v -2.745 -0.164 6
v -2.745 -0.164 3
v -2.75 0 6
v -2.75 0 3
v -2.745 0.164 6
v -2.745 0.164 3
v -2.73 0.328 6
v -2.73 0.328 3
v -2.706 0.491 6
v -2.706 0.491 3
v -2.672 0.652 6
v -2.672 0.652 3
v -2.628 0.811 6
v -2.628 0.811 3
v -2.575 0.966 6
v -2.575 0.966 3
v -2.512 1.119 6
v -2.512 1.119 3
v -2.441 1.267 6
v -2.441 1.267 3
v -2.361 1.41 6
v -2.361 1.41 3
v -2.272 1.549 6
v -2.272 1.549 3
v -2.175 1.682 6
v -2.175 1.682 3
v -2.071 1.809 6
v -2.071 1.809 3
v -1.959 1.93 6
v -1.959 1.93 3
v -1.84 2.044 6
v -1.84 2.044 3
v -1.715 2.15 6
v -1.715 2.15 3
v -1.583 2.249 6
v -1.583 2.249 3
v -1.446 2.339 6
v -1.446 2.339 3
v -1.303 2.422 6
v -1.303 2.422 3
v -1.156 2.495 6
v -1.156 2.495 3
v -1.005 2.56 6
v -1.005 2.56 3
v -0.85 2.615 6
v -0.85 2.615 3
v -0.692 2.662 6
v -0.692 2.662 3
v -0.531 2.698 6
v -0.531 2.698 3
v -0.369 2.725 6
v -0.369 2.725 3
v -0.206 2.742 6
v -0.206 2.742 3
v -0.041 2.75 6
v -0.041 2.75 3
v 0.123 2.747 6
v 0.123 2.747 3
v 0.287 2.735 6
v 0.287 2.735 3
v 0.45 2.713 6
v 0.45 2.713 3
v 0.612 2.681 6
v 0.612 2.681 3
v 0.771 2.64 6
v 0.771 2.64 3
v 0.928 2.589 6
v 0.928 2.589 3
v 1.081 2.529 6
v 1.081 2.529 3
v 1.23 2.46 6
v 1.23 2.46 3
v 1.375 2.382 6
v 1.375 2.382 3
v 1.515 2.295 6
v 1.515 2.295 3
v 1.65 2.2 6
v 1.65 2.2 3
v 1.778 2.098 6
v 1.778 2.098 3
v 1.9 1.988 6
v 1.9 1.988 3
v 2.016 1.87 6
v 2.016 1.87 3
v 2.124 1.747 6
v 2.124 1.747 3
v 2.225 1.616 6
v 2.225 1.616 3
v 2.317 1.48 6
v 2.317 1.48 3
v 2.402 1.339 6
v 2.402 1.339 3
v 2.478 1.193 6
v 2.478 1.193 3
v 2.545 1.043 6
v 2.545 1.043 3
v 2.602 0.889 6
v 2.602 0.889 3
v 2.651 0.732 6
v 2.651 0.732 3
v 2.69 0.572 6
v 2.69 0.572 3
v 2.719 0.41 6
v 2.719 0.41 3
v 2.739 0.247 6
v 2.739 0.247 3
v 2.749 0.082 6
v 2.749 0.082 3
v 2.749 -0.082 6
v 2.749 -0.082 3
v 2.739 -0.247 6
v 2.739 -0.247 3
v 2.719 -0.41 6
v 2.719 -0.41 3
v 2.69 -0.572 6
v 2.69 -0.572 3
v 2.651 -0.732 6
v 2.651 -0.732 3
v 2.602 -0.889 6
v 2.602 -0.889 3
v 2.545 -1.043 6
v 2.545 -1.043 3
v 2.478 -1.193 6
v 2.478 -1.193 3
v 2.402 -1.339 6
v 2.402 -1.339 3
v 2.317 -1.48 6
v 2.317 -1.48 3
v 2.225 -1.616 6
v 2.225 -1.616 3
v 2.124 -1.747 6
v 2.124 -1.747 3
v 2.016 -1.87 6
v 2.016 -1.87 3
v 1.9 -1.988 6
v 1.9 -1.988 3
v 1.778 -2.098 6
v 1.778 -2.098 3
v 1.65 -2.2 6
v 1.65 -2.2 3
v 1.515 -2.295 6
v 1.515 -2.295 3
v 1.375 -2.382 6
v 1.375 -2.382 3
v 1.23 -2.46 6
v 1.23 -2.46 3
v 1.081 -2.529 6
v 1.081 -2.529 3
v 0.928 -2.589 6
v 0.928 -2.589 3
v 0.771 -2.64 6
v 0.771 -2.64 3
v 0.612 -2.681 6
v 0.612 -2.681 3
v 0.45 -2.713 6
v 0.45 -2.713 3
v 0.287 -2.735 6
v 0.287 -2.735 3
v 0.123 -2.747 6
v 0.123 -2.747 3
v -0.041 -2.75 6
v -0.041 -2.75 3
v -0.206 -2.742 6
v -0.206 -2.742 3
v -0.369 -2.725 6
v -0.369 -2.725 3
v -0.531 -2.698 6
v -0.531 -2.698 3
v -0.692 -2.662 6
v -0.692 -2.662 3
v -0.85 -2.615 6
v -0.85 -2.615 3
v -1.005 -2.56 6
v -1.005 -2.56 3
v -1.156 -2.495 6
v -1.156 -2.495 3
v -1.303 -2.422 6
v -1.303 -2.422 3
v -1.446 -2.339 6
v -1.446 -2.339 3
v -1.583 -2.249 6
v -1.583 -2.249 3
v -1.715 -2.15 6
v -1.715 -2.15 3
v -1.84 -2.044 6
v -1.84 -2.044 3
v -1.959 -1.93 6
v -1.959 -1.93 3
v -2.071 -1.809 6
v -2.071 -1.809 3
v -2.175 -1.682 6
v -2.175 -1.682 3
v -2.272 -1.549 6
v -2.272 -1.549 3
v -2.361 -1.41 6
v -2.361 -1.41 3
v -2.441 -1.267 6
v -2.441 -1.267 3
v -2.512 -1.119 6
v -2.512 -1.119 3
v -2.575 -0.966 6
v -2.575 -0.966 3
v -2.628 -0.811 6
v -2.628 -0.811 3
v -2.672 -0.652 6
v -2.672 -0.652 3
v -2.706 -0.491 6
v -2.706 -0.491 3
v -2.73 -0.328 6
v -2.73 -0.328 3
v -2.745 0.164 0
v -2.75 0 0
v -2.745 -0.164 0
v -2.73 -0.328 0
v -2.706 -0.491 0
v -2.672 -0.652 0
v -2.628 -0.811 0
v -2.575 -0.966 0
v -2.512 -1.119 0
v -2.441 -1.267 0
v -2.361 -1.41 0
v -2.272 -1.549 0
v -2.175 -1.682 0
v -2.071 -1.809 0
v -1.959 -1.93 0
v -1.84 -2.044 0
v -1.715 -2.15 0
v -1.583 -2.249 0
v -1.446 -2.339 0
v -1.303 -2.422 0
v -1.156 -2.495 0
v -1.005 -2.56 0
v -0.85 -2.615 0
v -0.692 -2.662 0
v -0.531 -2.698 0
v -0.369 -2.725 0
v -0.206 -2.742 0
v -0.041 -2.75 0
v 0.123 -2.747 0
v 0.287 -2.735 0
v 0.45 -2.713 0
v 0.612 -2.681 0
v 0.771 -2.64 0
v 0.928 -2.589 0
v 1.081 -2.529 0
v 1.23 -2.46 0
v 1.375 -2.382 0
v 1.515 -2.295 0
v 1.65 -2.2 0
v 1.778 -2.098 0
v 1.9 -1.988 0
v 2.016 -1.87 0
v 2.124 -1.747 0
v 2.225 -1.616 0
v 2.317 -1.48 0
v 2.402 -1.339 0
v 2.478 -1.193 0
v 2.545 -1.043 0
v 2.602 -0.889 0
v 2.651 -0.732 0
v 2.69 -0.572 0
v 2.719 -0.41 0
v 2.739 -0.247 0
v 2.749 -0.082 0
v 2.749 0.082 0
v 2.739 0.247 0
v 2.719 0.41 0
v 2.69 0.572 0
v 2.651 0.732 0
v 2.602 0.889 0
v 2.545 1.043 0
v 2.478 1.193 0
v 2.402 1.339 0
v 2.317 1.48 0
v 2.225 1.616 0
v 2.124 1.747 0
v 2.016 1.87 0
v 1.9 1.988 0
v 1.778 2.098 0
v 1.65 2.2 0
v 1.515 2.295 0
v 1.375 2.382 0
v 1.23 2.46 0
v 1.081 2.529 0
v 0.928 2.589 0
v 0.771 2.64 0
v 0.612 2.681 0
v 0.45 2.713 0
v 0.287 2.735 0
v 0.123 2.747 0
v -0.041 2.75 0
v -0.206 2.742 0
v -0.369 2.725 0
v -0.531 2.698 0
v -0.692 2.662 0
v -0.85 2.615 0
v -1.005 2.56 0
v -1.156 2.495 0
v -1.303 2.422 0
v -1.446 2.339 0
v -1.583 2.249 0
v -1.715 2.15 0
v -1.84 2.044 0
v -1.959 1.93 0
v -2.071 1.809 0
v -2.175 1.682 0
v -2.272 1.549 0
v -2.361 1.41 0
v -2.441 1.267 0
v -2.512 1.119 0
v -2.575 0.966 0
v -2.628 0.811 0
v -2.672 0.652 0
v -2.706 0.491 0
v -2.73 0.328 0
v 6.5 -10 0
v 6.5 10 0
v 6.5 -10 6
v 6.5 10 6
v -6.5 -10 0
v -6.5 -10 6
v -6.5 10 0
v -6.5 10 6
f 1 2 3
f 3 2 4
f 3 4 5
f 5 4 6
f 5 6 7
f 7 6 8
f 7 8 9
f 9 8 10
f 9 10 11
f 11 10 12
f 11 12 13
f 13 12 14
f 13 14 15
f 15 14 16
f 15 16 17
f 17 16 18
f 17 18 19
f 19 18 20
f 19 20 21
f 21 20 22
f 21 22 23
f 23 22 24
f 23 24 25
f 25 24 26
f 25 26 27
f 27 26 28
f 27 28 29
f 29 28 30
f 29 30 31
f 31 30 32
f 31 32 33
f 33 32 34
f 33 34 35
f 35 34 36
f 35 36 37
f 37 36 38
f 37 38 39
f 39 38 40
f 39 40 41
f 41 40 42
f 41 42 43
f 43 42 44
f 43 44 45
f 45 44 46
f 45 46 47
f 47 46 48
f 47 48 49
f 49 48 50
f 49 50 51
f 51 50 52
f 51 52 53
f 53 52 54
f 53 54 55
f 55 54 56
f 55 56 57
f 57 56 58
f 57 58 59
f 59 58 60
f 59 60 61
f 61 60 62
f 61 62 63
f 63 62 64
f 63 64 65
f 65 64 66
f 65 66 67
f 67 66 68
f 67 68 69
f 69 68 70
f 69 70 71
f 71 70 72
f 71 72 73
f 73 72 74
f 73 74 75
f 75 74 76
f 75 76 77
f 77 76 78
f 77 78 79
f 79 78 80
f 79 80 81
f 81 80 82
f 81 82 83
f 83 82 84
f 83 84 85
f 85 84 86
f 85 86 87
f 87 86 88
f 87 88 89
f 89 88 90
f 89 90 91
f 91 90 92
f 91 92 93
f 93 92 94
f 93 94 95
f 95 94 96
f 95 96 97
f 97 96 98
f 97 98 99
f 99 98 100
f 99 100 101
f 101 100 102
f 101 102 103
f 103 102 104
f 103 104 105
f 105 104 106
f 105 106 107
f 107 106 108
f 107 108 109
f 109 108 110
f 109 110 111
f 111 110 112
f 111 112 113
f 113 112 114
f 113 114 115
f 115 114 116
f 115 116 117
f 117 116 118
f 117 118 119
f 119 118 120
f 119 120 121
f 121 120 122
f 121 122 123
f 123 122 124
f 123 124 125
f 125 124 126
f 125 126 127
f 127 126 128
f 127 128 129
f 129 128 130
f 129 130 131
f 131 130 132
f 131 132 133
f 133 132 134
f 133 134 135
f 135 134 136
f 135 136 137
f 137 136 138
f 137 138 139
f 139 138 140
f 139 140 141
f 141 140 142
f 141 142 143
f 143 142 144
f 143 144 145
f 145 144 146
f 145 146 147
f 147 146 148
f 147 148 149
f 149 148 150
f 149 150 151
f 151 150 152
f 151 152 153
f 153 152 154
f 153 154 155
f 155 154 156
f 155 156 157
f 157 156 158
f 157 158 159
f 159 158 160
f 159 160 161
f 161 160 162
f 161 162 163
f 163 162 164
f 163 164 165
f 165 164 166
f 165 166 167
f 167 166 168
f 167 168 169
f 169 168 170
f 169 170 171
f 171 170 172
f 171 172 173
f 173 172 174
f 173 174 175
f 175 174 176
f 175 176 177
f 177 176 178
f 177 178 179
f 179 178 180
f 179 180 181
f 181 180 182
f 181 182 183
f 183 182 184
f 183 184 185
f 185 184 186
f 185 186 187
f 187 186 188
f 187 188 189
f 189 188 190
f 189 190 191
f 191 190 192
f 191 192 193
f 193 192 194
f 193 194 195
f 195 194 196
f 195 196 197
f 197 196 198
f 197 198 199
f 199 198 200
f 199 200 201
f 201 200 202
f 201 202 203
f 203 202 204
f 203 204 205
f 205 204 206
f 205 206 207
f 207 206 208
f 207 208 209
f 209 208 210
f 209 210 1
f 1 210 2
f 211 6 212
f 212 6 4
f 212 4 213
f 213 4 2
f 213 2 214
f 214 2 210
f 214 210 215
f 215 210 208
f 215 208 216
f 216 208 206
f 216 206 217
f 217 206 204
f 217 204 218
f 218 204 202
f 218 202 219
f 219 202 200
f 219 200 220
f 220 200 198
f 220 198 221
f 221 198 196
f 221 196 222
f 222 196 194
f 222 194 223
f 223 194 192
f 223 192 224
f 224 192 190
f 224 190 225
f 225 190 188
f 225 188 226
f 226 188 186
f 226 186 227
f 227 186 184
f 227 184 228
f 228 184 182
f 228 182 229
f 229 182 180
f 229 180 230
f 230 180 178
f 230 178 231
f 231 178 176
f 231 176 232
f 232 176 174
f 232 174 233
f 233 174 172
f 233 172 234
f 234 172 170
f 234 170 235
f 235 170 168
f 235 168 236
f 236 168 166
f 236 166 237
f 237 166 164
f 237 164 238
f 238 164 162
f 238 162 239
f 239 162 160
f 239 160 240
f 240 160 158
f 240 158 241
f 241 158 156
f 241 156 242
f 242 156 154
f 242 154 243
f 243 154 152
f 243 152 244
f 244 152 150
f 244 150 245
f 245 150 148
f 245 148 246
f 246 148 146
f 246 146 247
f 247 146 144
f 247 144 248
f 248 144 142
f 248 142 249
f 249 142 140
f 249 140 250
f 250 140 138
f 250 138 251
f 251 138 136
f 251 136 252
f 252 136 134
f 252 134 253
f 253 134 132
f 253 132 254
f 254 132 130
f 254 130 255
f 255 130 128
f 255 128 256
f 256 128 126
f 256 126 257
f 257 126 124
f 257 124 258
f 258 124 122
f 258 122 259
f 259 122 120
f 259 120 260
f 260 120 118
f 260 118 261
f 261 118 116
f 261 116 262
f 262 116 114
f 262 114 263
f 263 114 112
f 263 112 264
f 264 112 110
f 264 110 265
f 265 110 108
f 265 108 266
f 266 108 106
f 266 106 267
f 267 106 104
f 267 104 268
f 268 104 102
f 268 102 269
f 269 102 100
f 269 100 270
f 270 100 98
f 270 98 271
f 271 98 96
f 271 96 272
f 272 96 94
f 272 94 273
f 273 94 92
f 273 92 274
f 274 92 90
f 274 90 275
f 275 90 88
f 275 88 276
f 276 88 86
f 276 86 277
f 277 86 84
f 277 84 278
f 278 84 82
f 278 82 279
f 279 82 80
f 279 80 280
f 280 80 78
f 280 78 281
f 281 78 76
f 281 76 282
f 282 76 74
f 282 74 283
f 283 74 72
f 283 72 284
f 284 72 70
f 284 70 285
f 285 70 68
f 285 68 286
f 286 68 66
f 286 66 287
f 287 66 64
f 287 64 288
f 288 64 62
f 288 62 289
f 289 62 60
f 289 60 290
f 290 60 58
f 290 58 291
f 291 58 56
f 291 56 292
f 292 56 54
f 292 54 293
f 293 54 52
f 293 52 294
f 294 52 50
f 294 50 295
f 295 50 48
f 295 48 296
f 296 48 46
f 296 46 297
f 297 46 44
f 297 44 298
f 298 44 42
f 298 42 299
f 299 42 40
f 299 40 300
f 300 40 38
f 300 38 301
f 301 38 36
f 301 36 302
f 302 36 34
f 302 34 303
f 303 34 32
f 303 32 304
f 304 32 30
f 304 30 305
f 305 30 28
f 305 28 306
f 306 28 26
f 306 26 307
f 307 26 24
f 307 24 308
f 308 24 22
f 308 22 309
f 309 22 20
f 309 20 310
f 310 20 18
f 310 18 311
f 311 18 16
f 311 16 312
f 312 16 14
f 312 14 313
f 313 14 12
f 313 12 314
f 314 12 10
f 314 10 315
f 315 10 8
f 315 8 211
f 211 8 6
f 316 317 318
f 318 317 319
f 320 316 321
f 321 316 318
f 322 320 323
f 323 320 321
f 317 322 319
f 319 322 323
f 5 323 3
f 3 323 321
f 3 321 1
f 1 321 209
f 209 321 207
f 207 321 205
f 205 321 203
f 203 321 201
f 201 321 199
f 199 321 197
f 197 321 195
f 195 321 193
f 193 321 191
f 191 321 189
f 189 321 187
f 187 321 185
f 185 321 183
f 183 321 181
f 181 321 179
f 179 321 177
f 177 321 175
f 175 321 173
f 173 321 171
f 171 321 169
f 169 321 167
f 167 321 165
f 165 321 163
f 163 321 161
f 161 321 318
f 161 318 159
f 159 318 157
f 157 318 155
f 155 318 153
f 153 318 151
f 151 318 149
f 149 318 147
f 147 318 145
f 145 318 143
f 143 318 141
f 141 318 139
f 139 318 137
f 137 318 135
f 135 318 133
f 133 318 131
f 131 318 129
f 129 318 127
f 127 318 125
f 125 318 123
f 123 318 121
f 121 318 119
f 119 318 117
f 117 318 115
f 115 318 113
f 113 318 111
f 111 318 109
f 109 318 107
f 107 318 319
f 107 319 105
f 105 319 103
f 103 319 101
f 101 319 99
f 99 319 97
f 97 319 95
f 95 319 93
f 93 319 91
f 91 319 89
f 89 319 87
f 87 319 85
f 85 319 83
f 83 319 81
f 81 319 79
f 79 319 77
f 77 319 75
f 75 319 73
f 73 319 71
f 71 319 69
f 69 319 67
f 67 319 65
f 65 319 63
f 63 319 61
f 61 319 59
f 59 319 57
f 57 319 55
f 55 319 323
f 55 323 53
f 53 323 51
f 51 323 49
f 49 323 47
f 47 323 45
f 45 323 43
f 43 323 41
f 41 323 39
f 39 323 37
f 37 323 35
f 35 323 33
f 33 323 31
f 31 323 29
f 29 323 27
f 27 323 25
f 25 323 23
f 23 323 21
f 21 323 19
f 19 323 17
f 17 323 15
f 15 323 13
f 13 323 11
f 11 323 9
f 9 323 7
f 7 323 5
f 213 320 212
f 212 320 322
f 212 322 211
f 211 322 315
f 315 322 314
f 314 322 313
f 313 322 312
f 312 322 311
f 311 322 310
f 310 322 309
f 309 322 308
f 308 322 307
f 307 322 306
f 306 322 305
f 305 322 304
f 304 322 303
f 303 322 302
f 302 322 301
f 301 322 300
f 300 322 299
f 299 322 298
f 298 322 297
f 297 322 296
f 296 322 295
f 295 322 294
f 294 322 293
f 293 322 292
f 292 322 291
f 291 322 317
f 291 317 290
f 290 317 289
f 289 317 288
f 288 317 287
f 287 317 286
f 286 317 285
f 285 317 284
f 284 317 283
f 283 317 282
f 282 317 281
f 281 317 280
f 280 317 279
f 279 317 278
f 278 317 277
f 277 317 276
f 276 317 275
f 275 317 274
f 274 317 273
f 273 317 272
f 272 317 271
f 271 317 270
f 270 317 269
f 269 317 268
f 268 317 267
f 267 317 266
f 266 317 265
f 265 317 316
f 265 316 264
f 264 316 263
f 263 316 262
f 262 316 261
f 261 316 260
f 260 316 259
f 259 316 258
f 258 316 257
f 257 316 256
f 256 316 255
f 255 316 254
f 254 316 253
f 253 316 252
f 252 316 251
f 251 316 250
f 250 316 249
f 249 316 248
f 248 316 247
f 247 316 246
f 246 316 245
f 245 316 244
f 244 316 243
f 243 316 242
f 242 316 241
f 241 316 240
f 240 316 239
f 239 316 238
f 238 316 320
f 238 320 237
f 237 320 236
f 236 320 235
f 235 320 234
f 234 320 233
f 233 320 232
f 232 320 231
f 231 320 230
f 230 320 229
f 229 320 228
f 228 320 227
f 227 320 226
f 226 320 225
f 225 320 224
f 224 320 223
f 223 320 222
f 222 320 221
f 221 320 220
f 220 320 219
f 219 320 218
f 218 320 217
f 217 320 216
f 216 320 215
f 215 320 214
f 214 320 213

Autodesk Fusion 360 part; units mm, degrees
sketch "Sketch1" plane through (0, 0, 0) normal (0, 0, 1) x (1, 0, 0)
  line L0 (6.5, -10) -> (-6.5, -10)
  line L1 (-6.5, -10) -> (-6.5, 10)
  line L2 (-6.5, 10) -> (6.5, 10)
  line L3 (6.5, 10) -> (6.5, -10)
  line L4 (6.5, -10) -> (-6.5, 10) construction
  line L5 (-6.5, -10) -> (6.5, 10) construction
  circle A0 centre (0, 0) radius 2.75
  dimension "d1" = 13
  dimension "d2" = 20
  dimension "d3" = 5.5
extrude "Extrude1" add sketch "Sketch1" along normal blind 6
